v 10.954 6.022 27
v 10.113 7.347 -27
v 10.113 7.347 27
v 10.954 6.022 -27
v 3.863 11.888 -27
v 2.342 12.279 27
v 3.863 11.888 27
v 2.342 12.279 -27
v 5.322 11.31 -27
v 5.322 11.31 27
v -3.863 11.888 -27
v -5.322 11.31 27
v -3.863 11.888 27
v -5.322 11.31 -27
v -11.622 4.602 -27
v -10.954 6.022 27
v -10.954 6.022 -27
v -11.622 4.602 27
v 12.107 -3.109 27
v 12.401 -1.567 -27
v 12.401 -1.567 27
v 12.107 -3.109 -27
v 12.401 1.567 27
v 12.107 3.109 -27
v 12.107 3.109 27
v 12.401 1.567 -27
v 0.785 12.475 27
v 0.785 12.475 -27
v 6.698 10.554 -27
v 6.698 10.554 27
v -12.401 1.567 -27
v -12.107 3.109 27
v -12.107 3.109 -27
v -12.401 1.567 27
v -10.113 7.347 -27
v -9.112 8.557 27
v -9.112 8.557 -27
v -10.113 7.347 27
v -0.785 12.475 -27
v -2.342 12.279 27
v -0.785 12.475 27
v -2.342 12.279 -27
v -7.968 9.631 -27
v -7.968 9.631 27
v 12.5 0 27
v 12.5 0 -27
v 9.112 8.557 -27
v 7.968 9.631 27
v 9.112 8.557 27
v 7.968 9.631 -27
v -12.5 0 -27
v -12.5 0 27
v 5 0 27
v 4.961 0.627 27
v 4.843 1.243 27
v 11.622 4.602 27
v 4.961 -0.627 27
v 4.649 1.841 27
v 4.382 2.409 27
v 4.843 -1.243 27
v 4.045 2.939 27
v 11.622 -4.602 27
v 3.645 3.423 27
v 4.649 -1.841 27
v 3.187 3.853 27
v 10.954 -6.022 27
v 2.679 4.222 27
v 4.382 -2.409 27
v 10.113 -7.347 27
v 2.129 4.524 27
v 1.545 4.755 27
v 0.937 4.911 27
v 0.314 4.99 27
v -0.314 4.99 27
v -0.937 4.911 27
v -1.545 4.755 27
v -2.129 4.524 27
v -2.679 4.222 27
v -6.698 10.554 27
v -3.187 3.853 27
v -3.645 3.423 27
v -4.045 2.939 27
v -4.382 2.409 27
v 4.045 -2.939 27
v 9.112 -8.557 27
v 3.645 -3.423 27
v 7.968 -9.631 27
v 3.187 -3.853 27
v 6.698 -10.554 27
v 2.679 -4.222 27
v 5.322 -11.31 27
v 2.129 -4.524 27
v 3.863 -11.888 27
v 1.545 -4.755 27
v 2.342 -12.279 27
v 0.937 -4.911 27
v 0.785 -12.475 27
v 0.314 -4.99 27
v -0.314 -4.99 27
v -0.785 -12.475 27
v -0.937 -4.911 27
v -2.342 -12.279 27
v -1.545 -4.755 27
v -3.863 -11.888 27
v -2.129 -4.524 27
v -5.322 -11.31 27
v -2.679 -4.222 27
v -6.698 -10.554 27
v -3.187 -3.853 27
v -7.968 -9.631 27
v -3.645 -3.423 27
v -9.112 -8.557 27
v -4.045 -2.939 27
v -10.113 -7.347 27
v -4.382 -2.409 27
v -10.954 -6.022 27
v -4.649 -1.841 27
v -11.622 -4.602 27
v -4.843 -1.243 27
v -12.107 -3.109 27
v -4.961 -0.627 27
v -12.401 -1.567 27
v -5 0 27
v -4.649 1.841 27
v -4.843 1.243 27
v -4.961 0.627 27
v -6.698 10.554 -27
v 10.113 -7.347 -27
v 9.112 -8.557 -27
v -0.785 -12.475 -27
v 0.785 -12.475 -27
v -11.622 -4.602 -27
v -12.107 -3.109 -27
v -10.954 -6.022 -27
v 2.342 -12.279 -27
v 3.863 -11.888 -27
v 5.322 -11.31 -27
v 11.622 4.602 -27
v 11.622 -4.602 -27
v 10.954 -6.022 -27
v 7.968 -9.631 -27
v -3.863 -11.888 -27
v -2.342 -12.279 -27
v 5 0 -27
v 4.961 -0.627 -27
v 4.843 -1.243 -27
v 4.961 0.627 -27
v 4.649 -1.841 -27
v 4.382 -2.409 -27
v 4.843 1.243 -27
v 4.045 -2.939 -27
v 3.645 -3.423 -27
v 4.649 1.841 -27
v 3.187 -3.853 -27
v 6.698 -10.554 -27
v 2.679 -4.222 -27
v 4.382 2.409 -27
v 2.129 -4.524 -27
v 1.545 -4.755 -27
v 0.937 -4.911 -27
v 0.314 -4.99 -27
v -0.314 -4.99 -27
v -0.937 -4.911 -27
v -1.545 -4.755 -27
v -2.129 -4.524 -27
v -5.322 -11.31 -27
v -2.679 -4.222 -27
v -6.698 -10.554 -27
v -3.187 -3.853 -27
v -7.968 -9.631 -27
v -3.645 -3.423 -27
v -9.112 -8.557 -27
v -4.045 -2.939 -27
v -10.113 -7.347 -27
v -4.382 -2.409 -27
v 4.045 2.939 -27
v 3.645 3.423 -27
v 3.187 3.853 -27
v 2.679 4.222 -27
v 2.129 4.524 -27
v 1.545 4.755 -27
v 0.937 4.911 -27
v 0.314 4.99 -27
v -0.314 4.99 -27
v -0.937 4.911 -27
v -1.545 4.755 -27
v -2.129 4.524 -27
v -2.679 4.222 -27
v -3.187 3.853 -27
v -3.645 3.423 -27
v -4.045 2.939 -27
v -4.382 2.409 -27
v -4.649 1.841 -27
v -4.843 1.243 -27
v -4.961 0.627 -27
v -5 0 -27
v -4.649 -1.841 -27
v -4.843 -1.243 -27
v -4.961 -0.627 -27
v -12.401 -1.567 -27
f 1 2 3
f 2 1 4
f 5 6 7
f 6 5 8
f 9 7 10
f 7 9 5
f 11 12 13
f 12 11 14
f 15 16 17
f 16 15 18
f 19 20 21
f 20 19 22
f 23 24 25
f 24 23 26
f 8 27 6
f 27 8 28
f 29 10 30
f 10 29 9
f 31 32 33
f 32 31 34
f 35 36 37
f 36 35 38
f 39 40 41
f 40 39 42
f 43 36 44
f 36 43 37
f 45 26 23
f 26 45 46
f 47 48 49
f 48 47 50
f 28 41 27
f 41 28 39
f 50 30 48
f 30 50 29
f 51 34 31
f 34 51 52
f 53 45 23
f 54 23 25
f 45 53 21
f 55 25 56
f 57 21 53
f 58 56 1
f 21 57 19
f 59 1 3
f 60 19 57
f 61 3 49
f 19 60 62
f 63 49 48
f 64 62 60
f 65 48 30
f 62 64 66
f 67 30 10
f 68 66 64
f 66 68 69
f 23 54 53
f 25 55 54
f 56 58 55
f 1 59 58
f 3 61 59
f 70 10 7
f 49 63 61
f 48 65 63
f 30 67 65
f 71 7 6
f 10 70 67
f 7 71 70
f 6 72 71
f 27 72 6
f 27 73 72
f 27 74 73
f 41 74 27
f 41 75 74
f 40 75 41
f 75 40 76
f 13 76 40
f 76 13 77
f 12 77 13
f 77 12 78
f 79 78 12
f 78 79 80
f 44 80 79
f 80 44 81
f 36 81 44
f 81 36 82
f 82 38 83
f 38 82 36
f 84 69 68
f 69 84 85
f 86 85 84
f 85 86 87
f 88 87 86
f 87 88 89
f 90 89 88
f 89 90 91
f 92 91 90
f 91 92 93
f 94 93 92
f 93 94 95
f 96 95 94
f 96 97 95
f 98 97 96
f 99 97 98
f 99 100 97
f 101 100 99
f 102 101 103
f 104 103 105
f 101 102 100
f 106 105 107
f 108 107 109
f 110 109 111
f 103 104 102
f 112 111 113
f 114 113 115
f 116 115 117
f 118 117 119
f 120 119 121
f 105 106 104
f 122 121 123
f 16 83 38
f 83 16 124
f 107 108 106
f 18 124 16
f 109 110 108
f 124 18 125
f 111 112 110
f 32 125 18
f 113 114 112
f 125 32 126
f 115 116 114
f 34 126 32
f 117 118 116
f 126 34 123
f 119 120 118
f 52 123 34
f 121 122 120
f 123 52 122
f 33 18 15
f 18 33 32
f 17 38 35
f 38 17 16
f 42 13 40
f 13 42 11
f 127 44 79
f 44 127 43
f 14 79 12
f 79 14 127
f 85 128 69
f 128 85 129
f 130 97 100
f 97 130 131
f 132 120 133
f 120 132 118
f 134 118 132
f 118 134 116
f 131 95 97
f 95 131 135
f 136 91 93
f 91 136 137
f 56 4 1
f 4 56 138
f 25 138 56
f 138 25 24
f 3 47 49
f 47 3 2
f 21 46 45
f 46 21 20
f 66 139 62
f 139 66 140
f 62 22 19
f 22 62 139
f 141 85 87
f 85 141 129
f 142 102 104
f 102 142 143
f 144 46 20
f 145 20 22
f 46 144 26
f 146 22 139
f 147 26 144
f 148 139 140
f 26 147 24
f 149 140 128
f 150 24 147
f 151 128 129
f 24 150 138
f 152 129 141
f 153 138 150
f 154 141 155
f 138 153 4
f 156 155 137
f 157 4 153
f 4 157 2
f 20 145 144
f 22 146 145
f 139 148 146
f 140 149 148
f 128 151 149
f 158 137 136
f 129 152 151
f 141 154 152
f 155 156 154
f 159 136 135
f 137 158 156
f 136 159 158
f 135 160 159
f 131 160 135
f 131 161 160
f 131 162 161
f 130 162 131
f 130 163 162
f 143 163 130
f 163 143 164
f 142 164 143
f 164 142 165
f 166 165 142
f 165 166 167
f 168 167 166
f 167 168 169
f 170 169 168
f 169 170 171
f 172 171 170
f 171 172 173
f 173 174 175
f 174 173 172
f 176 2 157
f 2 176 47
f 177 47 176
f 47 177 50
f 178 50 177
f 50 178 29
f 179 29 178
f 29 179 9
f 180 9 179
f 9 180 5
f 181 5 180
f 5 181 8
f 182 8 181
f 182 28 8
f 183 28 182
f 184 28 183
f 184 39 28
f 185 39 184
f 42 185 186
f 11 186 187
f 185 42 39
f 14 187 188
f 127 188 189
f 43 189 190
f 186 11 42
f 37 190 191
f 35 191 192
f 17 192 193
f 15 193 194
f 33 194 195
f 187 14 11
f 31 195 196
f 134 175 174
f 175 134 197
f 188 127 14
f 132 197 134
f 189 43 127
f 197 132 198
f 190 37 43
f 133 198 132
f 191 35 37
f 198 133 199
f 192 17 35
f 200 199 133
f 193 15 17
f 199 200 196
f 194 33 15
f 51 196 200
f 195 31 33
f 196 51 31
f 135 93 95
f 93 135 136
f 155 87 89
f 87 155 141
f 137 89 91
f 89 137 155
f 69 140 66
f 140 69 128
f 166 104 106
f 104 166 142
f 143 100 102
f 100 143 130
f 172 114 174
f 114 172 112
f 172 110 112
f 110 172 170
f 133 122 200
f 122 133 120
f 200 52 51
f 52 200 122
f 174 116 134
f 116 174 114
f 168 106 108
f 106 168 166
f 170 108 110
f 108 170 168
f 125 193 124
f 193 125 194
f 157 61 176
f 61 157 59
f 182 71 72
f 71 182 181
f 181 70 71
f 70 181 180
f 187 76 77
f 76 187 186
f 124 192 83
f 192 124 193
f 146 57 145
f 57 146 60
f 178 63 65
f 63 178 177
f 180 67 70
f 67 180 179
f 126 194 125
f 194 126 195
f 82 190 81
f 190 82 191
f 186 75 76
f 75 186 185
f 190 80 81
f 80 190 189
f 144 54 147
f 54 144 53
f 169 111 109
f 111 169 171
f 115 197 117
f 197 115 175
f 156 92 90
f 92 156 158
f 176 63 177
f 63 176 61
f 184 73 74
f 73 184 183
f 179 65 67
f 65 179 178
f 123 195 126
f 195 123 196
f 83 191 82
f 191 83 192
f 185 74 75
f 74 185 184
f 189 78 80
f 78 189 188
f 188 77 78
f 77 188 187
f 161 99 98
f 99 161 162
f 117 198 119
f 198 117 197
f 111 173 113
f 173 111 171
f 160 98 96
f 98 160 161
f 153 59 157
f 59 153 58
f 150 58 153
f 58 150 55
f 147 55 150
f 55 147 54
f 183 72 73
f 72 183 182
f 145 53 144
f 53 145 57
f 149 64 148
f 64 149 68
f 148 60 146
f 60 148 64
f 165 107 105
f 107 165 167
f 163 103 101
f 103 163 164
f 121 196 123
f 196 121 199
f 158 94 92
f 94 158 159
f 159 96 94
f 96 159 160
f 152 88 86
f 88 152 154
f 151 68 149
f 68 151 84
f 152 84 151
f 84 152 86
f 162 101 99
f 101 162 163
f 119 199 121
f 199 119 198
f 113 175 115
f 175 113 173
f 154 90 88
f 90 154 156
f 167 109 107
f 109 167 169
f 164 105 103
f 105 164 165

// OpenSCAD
$fn = 50;


difference() {
	union() {
		translate(v = [0, 0, -27.0000000000]) {
			cylinder(h = 54, r = 12.5000000000);
		}
	}
	union() {
		translate(v = [0, 0, -100.0000000000]) {
			cylinder(h = 200, r = 5);
		}
	}
}
